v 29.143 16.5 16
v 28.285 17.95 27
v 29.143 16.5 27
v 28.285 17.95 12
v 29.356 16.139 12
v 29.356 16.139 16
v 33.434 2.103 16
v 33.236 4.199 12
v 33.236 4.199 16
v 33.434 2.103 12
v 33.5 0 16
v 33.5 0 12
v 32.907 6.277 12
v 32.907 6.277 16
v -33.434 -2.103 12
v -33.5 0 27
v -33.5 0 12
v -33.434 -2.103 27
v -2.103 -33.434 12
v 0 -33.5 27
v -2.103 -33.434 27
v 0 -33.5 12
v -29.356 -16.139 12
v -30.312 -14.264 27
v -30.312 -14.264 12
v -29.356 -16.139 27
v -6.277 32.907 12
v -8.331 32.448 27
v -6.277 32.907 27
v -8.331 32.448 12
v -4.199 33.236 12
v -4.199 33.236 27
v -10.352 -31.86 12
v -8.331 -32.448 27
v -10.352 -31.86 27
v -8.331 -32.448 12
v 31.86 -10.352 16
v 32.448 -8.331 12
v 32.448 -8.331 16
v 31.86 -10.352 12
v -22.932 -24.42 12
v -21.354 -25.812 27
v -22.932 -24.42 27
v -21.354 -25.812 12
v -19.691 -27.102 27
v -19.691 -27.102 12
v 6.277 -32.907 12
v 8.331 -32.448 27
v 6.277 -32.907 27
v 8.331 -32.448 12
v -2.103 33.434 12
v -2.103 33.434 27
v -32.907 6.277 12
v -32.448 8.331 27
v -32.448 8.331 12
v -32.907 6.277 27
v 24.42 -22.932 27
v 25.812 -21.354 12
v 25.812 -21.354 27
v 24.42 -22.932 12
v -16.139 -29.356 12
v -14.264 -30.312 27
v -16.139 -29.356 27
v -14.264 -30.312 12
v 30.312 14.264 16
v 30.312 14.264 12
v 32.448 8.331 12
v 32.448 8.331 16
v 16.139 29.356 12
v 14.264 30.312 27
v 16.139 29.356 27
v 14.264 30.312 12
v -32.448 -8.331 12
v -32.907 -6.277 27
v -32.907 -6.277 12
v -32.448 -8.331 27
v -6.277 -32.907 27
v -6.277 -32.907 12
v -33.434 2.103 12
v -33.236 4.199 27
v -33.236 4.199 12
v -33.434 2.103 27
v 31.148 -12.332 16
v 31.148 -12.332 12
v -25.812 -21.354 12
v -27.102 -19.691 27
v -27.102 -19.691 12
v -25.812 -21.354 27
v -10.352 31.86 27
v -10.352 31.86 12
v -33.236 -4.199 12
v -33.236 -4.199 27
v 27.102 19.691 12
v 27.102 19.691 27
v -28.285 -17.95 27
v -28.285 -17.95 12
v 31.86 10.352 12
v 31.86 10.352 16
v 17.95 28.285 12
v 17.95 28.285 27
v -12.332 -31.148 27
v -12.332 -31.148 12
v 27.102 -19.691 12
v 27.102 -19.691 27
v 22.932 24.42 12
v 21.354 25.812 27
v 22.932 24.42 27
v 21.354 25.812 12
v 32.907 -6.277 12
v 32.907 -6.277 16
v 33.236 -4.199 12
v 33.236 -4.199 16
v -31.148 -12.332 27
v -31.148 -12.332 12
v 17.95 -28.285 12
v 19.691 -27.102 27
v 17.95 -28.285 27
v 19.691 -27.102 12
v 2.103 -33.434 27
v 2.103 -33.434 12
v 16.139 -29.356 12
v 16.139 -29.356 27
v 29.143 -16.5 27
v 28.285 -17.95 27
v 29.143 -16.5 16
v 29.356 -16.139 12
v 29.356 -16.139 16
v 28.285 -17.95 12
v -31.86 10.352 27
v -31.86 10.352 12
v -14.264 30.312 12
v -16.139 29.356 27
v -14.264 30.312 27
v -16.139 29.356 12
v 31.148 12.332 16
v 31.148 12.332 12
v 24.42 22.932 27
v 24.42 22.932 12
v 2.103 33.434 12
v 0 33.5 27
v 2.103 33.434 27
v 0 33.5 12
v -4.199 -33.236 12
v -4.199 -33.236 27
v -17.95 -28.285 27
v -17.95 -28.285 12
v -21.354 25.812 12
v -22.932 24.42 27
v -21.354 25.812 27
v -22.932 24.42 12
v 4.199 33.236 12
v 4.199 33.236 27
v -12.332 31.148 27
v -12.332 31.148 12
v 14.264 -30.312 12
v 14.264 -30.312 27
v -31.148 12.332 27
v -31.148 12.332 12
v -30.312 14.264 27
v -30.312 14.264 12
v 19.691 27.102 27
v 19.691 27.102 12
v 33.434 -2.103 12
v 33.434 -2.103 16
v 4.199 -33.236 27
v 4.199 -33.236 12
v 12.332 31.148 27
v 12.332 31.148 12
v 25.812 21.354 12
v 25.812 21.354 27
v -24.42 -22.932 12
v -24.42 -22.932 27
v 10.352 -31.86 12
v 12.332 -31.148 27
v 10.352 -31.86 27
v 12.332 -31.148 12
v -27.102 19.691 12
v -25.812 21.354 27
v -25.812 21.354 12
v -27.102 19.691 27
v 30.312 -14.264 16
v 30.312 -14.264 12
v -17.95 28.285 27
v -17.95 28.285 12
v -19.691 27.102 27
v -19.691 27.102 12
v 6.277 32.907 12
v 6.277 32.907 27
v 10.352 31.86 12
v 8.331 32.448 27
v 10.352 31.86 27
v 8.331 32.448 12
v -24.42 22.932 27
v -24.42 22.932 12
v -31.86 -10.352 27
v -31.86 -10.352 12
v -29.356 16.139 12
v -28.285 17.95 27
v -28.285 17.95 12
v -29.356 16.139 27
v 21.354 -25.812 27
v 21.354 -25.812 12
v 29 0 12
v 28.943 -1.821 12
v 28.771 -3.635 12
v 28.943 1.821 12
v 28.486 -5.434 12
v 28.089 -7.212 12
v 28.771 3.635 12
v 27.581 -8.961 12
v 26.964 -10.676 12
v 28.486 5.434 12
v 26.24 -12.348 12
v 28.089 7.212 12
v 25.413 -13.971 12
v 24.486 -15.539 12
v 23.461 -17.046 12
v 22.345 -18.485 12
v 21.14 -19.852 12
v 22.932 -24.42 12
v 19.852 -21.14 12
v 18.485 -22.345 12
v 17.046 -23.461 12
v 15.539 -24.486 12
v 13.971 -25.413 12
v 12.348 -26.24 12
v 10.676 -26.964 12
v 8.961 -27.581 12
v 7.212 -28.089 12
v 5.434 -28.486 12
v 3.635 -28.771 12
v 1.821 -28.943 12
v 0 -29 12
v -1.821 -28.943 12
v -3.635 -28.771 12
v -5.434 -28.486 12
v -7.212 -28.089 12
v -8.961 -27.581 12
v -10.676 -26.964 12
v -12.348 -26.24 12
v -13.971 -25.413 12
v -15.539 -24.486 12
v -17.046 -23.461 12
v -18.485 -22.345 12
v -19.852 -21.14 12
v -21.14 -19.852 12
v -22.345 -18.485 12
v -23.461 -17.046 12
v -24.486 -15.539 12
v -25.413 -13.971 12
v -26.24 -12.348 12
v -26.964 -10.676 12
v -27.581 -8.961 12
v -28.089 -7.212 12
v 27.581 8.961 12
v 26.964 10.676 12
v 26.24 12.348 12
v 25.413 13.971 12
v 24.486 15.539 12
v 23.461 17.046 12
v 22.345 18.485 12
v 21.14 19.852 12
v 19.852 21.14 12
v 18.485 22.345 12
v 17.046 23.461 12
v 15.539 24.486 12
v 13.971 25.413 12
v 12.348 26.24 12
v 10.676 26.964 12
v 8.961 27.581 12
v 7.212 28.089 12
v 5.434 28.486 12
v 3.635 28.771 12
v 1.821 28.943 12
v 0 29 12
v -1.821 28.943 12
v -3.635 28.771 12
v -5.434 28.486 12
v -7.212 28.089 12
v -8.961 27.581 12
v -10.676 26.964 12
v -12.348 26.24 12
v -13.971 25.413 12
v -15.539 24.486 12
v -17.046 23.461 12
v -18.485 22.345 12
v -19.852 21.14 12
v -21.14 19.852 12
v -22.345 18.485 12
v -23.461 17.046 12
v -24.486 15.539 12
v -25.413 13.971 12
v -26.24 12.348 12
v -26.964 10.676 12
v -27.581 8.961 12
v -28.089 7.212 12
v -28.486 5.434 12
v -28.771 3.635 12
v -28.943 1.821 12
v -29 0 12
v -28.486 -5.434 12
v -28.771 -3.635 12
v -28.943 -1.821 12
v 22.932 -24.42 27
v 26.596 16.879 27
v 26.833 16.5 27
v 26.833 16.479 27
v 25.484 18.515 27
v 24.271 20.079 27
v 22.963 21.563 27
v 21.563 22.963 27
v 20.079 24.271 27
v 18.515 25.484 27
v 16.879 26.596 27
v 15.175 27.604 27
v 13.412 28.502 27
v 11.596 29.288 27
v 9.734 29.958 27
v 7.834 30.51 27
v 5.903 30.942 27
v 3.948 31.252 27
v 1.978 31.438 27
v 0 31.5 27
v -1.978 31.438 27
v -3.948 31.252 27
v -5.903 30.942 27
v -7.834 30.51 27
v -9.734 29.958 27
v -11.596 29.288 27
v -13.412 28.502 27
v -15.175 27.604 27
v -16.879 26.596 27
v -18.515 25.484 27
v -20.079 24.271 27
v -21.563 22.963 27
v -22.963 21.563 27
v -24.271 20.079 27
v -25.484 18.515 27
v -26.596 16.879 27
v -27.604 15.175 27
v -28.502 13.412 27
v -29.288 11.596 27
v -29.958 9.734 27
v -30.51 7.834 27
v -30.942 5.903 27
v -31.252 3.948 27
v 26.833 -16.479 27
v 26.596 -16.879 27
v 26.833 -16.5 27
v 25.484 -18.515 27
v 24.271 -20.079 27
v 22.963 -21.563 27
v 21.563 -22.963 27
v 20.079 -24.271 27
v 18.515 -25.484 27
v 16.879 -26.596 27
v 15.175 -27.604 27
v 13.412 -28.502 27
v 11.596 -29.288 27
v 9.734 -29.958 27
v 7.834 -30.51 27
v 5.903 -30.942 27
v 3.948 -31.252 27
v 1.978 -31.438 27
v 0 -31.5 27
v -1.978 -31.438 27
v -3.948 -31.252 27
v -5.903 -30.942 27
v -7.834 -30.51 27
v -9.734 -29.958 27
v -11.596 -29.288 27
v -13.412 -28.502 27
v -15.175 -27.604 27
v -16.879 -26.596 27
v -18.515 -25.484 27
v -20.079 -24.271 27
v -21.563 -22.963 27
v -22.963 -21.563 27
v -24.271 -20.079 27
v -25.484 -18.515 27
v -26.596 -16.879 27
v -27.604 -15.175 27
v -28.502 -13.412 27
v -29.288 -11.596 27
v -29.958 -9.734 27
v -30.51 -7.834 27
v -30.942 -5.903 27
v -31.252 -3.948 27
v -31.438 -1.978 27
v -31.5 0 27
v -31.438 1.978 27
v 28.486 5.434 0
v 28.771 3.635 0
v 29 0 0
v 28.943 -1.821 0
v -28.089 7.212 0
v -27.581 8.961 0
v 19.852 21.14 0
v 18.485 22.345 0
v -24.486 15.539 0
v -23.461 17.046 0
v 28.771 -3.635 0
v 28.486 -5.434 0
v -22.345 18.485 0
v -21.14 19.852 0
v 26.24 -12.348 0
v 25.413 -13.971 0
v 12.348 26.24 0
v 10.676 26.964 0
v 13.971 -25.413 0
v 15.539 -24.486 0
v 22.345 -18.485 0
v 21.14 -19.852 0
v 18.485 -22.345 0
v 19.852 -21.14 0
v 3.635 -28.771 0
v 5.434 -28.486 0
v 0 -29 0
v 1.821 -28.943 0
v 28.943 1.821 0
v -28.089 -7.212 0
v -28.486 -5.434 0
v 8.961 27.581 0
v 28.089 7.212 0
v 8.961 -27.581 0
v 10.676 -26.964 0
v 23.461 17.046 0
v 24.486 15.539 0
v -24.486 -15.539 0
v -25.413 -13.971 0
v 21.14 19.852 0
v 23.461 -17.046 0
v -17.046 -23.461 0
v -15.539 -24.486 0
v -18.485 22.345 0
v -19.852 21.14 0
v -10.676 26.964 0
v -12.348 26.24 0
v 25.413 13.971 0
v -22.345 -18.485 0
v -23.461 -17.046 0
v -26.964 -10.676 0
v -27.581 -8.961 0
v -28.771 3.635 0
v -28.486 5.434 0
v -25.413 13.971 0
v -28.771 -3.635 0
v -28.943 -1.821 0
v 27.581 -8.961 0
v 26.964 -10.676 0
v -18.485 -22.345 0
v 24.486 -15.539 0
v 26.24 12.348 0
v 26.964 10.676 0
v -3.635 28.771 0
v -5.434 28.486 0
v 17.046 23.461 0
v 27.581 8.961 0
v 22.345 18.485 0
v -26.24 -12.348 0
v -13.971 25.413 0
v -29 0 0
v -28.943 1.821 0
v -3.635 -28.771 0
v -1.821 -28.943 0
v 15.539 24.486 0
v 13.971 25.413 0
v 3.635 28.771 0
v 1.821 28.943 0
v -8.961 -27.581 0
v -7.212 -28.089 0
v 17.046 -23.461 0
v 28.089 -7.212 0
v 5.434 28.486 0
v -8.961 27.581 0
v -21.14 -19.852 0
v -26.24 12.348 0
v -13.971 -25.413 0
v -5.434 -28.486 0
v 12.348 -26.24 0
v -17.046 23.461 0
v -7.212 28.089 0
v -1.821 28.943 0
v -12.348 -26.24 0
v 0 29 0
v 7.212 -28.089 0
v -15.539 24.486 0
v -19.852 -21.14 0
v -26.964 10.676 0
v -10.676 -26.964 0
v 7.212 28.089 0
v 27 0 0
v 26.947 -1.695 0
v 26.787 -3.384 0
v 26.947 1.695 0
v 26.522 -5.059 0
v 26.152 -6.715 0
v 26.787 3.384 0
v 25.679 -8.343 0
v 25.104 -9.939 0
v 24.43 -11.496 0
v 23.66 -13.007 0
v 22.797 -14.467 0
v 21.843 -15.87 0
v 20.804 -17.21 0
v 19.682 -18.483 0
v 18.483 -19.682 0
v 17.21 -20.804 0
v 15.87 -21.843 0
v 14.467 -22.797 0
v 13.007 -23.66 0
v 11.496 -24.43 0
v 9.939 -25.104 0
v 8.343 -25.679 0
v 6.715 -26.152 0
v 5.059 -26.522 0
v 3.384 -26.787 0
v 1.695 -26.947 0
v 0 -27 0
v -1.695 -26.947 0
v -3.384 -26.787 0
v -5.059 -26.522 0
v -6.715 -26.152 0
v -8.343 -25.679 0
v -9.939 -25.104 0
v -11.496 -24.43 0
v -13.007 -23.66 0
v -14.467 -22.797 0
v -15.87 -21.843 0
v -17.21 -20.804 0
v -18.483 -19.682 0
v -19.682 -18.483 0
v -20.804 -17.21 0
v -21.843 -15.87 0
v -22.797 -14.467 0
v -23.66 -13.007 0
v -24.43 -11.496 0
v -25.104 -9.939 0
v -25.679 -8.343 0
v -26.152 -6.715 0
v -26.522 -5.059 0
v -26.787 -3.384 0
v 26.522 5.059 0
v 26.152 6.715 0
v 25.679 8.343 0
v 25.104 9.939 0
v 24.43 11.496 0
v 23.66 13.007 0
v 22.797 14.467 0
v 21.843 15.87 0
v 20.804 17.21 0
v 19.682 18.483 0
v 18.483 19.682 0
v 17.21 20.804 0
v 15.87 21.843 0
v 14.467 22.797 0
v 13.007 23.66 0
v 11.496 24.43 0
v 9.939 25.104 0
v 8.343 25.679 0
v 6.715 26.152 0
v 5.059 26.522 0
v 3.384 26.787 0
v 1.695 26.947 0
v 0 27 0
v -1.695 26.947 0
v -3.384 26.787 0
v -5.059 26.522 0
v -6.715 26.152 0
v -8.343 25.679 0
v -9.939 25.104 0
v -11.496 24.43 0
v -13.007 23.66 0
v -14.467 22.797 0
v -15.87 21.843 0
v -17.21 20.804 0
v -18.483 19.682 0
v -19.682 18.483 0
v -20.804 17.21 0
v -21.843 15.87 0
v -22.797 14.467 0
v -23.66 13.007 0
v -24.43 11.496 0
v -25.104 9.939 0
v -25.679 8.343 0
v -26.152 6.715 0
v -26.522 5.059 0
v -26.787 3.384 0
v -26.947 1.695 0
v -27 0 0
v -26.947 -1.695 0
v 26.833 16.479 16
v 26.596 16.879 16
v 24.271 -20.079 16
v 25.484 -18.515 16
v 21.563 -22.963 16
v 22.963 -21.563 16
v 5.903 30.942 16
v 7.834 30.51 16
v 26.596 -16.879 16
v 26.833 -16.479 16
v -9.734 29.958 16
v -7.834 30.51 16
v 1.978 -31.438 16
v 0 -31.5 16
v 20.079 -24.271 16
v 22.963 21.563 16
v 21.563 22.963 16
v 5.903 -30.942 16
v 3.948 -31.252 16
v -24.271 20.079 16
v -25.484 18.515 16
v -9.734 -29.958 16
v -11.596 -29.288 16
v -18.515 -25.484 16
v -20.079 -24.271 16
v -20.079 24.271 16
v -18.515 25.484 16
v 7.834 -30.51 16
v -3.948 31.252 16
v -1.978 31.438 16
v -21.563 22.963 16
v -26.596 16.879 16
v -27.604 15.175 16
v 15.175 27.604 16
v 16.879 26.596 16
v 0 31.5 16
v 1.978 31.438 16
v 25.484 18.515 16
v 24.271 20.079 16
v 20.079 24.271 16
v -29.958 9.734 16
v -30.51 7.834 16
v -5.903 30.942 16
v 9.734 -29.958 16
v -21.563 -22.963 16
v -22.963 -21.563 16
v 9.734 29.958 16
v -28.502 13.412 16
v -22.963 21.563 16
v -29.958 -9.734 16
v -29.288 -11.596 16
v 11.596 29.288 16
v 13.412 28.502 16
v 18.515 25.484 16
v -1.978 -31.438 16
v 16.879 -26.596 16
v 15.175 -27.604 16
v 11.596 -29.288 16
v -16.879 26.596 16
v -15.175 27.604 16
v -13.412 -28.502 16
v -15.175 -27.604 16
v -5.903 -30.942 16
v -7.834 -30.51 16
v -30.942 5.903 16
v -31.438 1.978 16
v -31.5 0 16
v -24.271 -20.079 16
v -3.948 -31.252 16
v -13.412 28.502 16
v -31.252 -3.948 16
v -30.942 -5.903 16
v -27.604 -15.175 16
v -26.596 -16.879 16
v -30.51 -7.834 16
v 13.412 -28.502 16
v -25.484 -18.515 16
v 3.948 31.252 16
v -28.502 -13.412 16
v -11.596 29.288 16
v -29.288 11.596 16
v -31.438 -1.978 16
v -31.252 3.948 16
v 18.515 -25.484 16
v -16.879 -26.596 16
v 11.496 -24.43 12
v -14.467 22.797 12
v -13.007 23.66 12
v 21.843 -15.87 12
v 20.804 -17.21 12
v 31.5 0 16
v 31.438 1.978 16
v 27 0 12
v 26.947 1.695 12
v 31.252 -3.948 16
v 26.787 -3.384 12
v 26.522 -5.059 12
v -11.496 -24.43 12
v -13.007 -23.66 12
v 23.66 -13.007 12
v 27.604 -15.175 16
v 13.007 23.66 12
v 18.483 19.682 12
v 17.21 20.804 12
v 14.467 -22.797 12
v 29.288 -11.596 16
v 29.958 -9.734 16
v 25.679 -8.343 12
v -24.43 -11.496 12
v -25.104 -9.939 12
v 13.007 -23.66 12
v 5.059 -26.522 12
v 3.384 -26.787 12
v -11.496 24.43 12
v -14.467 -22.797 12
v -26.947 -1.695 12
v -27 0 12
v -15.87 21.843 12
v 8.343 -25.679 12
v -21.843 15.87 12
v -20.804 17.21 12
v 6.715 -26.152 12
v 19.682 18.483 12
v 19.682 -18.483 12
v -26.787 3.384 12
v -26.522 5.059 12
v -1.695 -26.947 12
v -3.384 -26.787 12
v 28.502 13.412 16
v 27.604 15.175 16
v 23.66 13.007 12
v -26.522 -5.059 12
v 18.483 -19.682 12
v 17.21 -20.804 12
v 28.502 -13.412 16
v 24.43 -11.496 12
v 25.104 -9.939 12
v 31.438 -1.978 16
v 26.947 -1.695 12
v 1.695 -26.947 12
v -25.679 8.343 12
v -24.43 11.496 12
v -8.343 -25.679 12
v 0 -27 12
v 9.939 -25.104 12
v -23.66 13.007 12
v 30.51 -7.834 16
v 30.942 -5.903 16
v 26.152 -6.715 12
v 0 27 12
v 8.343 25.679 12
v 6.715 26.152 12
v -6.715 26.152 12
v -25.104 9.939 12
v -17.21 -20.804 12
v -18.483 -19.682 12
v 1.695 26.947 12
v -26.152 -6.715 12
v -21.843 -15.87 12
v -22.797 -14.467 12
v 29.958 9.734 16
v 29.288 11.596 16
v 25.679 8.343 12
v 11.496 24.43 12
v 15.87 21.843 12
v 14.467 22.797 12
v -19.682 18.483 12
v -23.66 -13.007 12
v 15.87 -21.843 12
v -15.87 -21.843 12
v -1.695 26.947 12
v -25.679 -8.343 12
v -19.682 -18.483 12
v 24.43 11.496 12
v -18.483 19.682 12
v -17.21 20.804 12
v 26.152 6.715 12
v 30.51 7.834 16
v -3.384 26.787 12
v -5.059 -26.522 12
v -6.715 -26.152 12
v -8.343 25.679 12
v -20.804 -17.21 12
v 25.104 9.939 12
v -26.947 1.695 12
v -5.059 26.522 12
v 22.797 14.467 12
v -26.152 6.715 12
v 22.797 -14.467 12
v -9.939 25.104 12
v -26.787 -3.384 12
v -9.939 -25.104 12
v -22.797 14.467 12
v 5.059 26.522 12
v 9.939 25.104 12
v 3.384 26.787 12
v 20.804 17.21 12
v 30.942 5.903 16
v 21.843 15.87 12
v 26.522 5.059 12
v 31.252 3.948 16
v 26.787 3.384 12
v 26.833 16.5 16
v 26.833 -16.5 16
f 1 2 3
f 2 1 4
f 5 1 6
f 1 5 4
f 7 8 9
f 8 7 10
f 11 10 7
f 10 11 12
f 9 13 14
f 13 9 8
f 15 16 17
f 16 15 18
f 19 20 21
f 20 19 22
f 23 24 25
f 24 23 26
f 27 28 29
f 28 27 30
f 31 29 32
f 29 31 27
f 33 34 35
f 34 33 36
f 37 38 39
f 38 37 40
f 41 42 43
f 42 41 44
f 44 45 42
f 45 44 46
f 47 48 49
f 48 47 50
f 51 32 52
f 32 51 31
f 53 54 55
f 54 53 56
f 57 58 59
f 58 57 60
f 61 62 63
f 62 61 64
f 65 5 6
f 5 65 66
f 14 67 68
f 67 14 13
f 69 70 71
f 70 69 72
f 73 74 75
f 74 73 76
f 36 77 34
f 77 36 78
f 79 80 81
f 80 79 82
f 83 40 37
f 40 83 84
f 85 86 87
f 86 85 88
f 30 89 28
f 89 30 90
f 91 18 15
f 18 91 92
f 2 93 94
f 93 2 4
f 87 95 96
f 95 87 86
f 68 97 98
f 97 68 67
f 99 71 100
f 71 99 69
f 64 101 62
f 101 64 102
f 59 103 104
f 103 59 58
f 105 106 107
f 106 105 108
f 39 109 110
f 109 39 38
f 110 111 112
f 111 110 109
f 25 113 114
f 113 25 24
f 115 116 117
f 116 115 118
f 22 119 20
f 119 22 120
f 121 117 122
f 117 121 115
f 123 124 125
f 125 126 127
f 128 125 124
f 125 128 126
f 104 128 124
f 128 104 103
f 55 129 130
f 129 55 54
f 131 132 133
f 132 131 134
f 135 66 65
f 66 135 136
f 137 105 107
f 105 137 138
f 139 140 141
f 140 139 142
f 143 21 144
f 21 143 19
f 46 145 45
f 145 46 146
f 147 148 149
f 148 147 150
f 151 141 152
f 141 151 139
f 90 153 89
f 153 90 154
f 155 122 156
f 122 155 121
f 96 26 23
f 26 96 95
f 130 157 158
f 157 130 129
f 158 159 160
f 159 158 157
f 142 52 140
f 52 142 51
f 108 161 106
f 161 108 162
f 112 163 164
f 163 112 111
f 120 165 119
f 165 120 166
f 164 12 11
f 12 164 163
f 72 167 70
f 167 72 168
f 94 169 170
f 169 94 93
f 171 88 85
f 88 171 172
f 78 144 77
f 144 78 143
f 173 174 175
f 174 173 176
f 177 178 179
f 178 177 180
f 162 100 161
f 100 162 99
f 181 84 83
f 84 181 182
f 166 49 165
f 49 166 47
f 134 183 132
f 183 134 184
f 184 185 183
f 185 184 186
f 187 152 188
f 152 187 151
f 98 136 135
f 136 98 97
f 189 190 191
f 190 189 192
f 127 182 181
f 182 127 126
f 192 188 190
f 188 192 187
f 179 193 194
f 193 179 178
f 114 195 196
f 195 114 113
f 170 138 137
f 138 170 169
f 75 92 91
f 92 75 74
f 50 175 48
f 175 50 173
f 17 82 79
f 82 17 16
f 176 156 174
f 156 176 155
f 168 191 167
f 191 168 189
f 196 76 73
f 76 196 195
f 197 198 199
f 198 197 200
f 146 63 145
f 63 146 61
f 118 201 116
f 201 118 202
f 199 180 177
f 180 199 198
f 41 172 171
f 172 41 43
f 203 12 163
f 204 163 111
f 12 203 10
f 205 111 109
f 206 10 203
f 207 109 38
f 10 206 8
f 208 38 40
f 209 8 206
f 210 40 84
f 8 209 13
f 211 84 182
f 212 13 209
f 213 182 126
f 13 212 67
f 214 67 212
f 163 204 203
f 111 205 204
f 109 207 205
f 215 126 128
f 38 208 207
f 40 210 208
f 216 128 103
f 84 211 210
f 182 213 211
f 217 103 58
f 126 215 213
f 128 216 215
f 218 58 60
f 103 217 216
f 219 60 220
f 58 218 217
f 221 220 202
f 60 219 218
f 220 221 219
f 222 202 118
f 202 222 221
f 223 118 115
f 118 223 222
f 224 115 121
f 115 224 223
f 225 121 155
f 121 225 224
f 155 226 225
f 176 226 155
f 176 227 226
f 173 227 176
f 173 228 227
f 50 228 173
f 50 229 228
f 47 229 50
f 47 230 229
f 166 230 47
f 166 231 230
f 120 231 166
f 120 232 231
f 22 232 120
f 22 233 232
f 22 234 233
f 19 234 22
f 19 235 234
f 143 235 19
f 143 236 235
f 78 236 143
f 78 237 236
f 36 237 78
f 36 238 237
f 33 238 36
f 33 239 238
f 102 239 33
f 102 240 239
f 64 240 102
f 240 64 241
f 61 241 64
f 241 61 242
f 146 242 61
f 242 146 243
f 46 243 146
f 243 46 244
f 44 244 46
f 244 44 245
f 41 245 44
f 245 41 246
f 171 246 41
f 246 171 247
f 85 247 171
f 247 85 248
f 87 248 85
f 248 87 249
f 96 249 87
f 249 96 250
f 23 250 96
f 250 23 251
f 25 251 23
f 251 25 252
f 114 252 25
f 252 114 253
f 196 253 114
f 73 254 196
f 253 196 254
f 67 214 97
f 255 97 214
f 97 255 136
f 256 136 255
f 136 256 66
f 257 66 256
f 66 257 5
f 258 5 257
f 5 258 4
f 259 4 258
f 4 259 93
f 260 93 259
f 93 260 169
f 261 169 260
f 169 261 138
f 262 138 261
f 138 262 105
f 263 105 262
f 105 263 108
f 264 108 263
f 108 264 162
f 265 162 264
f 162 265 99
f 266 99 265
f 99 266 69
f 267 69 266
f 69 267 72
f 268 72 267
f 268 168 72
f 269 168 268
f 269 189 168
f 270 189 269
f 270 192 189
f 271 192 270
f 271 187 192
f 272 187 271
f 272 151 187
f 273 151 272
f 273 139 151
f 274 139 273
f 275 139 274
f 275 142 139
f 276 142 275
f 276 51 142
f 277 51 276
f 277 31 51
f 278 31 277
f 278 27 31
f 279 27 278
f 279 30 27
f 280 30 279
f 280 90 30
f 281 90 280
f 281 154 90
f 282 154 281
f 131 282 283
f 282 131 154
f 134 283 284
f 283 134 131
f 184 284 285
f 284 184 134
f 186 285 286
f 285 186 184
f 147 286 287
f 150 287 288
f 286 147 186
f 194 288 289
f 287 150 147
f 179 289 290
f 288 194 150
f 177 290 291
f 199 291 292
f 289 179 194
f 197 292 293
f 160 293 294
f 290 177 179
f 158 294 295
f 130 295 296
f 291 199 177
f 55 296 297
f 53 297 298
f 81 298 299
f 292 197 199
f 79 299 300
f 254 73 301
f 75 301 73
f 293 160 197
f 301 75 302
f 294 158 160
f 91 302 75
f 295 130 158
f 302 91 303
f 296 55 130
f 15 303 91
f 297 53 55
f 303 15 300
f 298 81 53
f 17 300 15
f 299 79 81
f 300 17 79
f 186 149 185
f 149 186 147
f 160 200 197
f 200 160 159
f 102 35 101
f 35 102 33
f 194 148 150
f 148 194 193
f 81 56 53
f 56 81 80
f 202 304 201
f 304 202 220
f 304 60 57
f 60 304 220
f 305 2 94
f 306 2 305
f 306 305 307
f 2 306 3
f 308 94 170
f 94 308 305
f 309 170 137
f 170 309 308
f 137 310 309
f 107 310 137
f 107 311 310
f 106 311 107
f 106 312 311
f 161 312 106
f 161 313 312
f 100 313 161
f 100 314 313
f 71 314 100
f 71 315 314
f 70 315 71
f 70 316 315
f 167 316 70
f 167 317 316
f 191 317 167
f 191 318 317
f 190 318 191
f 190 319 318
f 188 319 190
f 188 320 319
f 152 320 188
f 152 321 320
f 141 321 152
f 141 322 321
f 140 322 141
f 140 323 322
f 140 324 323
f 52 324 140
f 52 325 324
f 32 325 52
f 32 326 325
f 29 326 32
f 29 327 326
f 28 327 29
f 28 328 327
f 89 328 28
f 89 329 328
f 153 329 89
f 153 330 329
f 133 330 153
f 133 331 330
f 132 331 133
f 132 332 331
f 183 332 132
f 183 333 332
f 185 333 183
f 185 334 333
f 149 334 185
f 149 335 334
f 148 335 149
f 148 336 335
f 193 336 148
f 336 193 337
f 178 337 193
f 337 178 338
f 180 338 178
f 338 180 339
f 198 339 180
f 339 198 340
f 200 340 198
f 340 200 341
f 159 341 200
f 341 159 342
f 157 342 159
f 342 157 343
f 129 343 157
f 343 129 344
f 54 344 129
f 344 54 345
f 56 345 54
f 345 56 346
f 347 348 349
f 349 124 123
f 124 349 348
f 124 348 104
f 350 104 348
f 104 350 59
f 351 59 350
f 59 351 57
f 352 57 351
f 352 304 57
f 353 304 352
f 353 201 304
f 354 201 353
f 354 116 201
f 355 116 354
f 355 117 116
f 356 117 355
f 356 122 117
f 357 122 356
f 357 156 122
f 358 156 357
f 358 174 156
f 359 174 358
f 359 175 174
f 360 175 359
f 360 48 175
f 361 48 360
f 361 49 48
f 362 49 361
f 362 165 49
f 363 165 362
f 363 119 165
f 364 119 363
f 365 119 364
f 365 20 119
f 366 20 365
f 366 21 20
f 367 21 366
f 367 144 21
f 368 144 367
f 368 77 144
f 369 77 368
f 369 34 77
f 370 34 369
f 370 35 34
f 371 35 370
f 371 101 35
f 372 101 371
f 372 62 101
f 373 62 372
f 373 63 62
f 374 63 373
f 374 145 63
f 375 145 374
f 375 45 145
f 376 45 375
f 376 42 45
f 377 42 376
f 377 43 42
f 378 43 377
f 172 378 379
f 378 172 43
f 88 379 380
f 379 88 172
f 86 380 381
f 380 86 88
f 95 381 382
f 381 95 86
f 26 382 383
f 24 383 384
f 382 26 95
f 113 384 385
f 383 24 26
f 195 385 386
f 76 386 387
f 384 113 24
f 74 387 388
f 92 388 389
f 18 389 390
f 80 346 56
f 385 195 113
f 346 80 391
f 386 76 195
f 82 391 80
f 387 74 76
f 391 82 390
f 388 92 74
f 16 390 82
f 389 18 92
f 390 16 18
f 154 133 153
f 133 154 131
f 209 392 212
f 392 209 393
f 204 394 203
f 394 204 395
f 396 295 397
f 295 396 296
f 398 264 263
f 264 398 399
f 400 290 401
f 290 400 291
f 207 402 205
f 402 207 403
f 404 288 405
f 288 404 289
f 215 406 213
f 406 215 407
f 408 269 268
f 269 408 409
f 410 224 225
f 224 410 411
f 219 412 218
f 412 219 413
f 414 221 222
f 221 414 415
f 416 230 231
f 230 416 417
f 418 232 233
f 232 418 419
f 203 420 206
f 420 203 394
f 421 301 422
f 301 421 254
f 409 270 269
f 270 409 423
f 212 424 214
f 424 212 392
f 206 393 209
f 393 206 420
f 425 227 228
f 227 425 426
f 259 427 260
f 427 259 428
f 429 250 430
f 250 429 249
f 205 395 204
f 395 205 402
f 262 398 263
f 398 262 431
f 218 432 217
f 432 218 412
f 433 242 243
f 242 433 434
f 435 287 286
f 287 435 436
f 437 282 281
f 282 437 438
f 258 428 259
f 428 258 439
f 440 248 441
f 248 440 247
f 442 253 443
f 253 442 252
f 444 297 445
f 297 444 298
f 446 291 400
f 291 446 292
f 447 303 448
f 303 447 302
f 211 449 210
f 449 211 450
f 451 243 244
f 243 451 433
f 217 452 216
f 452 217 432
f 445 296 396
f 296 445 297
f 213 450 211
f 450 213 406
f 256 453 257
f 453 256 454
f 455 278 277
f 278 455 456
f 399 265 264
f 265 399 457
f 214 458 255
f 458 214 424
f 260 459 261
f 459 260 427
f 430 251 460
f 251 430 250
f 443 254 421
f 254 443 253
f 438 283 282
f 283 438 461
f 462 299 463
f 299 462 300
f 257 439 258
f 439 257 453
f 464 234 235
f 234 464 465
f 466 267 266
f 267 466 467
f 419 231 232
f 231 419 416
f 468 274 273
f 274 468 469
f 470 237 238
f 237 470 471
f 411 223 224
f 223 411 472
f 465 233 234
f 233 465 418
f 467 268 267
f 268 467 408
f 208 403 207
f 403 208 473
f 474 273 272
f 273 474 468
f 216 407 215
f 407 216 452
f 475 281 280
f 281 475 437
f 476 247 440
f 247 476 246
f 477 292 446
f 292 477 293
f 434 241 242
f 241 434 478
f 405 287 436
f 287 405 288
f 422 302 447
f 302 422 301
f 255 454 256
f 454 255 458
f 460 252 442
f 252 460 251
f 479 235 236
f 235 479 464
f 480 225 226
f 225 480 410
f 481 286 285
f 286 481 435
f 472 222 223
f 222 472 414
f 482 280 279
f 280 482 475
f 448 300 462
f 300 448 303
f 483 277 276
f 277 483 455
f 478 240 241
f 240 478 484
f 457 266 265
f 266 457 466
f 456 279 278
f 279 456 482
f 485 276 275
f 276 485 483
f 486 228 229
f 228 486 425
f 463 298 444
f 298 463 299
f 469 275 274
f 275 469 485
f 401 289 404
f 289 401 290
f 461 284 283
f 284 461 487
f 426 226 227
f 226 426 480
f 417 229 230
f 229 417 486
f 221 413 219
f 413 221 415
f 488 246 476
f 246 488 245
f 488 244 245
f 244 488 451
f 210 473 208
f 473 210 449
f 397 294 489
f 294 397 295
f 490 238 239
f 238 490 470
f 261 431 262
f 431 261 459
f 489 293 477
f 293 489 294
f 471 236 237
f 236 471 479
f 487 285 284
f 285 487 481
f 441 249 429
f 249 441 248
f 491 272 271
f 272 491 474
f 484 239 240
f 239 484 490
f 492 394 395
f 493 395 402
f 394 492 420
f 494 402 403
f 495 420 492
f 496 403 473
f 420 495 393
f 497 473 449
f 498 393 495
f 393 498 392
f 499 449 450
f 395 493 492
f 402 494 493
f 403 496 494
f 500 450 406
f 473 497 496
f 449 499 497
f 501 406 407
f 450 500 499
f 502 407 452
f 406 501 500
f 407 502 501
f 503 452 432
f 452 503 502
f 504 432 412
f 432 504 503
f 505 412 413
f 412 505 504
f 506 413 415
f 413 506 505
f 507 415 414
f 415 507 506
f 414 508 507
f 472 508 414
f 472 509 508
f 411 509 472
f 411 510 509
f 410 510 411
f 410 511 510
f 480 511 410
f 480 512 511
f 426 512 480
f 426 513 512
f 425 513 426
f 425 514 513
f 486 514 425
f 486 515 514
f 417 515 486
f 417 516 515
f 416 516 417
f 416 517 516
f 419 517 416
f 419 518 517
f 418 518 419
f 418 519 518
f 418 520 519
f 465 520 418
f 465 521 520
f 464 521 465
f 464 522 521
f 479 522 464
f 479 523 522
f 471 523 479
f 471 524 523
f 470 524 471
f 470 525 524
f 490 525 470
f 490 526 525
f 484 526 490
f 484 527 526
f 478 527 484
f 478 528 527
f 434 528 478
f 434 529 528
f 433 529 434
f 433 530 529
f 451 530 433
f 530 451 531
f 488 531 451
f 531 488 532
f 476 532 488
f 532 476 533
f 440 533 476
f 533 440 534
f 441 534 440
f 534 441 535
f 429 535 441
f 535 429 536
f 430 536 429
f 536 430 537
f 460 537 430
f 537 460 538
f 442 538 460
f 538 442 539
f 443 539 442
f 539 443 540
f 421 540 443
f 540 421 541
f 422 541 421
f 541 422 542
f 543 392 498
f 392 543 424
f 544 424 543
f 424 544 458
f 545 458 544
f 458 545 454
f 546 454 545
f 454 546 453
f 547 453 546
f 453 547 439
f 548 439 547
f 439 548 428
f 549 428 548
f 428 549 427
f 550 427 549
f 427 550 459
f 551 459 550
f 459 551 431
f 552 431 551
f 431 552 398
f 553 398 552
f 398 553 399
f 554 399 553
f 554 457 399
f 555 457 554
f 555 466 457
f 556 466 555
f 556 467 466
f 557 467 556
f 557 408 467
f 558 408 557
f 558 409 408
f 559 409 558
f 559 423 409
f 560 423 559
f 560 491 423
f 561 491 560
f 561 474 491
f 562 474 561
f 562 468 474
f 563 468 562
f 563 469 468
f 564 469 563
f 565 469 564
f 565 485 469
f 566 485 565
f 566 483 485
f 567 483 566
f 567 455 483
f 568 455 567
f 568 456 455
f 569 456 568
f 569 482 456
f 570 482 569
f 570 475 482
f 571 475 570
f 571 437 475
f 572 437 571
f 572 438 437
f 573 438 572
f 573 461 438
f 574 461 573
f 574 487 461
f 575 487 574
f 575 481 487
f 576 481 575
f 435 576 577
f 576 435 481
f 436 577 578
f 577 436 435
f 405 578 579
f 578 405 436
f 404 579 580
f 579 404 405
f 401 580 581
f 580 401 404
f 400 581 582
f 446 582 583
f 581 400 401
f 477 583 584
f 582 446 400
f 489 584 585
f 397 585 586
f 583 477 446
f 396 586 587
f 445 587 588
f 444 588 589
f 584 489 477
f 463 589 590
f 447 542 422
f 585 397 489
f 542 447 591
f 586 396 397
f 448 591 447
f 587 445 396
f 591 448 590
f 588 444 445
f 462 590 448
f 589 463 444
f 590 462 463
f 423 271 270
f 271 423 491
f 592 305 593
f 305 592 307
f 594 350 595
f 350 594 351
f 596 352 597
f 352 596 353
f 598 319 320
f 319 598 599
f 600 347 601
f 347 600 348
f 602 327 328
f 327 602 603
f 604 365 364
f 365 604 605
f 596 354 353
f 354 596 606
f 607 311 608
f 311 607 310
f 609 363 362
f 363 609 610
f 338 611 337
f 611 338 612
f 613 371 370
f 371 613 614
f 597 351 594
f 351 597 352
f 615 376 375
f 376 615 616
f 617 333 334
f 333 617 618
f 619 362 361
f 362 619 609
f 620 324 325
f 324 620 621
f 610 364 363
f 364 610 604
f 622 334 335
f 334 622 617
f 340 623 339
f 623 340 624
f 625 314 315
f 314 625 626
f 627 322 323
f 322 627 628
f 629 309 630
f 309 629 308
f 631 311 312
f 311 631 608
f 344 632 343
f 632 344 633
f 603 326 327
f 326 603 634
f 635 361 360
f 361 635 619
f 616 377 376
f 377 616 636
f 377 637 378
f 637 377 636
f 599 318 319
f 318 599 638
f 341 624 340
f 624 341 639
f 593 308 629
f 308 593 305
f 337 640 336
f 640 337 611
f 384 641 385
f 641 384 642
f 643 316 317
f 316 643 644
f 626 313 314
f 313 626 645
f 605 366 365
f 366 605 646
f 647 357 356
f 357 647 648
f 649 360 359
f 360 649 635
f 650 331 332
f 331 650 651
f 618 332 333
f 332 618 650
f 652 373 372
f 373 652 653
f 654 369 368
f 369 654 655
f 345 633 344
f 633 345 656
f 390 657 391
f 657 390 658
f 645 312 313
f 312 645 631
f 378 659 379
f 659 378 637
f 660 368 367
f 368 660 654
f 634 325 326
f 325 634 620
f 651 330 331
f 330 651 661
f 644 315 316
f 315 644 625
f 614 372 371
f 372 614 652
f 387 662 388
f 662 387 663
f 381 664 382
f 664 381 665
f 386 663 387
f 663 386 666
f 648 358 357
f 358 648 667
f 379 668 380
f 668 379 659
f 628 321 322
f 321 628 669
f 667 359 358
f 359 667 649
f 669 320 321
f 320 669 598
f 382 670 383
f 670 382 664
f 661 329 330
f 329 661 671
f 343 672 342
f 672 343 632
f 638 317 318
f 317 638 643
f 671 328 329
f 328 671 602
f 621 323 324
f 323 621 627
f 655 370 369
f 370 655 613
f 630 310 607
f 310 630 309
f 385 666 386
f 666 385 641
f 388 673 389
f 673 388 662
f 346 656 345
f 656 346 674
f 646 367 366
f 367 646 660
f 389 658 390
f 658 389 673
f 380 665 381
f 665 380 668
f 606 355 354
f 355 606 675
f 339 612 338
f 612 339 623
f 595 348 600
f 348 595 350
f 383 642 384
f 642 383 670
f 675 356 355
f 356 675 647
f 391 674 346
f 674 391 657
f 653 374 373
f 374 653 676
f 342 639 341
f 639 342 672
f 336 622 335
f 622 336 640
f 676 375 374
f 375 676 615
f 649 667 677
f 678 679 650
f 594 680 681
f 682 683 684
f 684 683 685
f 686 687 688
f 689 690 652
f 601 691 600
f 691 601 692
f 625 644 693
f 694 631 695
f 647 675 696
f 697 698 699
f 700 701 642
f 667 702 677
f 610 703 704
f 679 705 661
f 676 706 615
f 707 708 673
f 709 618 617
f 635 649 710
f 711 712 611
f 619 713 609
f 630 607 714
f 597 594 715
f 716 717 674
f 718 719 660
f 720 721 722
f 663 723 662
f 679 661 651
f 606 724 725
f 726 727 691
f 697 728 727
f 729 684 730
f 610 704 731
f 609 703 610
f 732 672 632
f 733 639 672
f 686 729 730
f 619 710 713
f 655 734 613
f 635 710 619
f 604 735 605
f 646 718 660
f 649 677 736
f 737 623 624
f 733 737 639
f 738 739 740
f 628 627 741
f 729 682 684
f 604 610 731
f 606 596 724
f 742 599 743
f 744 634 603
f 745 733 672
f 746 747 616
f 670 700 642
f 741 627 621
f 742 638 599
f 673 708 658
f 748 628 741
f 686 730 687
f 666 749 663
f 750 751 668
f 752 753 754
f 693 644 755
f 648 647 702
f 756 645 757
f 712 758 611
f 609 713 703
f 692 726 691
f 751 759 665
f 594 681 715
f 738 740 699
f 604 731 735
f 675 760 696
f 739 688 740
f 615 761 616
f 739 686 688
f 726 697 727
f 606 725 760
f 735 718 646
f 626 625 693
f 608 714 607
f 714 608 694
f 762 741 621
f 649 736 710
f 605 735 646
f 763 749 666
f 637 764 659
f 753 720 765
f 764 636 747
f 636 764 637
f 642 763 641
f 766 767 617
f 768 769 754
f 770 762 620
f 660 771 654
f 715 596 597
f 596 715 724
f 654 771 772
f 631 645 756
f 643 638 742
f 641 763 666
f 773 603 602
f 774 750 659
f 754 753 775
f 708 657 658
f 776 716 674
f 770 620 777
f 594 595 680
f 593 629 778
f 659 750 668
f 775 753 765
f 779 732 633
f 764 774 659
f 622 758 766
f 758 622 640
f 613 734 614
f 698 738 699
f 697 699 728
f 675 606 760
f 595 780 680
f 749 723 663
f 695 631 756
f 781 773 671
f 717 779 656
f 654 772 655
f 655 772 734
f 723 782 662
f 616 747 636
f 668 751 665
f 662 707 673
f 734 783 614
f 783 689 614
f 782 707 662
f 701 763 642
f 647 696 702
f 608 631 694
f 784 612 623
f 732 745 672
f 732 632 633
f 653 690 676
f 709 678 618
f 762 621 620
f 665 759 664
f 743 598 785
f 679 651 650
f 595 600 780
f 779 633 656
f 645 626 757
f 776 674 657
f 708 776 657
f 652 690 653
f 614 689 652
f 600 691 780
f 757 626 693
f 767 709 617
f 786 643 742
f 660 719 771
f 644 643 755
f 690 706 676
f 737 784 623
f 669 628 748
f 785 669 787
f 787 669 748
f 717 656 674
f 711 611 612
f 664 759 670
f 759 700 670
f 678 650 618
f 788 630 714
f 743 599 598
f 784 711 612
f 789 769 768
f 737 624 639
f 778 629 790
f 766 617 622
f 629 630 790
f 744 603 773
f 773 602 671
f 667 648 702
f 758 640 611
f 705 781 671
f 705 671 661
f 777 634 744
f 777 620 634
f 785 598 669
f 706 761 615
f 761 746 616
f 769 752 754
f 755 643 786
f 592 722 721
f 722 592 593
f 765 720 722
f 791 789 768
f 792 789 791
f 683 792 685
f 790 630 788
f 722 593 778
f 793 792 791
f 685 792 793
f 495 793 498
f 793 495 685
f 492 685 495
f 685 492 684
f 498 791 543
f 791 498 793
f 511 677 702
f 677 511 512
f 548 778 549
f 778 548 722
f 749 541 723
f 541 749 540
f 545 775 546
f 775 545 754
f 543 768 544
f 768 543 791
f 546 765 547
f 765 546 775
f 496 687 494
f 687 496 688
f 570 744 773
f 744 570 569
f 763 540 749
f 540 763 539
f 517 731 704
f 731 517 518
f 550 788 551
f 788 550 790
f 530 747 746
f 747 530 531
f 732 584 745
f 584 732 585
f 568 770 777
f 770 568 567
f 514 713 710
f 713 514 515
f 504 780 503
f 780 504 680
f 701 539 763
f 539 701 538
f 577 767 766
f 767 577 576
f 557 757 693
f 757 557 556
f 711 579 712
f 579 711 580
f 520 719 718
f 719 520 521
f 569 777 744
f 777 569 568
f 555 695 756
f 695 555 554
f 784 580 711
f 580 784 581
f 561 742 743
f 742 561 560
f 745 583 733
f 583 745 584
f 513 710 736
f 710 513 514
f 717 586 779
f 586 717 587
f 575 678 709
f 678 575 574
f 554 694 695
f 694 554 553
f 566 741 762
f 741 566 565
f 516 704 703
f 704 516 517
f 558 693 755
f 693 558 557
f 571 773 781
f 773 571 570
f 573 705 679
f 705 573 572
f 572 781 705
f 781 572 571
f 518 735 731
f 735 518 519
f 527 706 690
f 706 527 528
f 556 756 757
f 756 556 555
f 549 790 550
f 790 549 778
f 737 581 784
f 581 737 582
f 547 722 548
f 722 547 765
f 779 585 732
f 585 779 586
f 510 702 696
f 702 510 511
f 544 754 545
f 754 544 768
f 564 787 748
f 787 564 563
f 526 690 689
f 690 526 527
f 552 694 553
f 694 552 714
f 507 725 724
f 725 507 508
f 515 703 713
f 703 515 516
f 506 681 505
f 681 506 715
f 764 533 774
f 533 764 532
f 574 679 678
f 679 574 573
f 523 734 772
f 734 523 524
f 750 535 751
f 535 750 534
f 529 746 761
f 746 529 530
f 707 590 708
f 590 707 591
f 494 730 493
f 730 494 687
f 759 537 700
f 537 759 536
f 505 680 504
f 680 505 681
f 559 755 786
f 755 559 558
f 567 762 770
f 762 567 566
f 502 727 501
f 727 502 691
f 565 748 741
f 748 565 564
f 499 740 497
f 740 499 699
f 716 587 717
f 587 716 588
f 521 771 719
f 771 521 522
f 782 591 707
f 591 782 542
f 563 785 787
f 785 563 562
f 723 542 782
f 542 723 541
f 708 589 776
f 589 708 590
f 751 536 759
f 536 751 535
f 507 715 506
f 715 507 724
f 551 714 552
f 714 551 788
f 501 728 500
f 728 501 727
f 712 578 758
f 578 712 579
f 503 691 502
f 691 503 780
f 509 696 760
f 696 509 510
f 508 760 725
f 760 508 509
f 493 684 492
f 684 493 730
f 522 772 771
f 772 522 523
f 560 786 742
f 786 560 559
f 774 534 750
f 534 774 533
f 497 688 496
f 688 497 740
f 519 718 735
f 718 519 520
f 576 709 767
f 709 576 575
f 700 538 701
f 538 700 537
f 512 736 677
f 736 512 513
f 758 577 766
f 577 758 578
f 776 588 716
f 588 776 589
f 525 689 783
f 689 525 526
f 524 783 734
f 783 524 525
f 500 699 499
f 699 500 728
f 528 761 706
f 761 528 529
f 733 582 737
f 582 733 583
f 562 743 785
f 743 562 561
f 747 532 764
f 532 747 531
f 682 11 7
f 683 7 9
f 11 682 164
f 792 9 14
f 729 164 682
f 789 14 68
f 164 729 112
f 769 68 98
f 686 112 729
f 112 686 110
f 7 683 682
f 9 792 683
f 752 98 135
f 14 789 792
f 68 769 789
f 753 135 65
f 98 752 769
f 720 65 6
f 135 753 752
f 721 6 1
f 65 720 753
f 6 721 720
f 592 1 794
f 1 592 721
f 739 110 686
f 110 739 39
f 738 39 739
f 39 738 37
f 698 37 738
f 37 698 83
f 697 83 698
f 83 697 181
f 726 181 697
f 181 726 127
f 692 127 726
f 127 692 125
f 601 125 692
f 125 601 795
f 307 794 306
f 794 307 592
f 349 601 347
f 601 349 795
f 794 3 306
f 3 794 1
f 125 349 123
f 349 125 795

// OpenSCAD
$fn = 100;

H1 = 15; // Top cylinder height
R1 = 67/2; // Top cylinder radius
H2 = 12; // Bottom cylinder height
R2 = 58/2; // Bottom cylinder radius
W = 33; // Hollowing width (for Oster Perfect Brew grinder)
t = 2; // Walls width
h = 4; // Height of funnel section

a = asin(W/(2*(R1-t))); // Temp variable to compute hollowing depth
x = (R1-t)*(1-cos(a)) + t; // Depth of hollowing

module envelope() {
	union(){
		translate([0,0,H2])
			cylinder(h = H1, r = R1);
		cylinder(h = H2, r = R2);
	}	
}

module inner() {
	union(){
		translate([0,0,H2+h])
			cylinder(h = H1, r = R1-t);
		
		translate([0, 0, H2])
			cylinder(h = h, r1 = R2-t, r2 = R1-t);

		cylinder(h = H2, r = R2-t);	
	}		
}

module hollowing() {
	translate([R1-x,-W/2,H2+h])
		cube([x,W,H1-h]);
}

module dosing_funnel() {
    difference(){
        envelope();
        inner();
        hollowing();	
    }
}

dosing_funnel();
